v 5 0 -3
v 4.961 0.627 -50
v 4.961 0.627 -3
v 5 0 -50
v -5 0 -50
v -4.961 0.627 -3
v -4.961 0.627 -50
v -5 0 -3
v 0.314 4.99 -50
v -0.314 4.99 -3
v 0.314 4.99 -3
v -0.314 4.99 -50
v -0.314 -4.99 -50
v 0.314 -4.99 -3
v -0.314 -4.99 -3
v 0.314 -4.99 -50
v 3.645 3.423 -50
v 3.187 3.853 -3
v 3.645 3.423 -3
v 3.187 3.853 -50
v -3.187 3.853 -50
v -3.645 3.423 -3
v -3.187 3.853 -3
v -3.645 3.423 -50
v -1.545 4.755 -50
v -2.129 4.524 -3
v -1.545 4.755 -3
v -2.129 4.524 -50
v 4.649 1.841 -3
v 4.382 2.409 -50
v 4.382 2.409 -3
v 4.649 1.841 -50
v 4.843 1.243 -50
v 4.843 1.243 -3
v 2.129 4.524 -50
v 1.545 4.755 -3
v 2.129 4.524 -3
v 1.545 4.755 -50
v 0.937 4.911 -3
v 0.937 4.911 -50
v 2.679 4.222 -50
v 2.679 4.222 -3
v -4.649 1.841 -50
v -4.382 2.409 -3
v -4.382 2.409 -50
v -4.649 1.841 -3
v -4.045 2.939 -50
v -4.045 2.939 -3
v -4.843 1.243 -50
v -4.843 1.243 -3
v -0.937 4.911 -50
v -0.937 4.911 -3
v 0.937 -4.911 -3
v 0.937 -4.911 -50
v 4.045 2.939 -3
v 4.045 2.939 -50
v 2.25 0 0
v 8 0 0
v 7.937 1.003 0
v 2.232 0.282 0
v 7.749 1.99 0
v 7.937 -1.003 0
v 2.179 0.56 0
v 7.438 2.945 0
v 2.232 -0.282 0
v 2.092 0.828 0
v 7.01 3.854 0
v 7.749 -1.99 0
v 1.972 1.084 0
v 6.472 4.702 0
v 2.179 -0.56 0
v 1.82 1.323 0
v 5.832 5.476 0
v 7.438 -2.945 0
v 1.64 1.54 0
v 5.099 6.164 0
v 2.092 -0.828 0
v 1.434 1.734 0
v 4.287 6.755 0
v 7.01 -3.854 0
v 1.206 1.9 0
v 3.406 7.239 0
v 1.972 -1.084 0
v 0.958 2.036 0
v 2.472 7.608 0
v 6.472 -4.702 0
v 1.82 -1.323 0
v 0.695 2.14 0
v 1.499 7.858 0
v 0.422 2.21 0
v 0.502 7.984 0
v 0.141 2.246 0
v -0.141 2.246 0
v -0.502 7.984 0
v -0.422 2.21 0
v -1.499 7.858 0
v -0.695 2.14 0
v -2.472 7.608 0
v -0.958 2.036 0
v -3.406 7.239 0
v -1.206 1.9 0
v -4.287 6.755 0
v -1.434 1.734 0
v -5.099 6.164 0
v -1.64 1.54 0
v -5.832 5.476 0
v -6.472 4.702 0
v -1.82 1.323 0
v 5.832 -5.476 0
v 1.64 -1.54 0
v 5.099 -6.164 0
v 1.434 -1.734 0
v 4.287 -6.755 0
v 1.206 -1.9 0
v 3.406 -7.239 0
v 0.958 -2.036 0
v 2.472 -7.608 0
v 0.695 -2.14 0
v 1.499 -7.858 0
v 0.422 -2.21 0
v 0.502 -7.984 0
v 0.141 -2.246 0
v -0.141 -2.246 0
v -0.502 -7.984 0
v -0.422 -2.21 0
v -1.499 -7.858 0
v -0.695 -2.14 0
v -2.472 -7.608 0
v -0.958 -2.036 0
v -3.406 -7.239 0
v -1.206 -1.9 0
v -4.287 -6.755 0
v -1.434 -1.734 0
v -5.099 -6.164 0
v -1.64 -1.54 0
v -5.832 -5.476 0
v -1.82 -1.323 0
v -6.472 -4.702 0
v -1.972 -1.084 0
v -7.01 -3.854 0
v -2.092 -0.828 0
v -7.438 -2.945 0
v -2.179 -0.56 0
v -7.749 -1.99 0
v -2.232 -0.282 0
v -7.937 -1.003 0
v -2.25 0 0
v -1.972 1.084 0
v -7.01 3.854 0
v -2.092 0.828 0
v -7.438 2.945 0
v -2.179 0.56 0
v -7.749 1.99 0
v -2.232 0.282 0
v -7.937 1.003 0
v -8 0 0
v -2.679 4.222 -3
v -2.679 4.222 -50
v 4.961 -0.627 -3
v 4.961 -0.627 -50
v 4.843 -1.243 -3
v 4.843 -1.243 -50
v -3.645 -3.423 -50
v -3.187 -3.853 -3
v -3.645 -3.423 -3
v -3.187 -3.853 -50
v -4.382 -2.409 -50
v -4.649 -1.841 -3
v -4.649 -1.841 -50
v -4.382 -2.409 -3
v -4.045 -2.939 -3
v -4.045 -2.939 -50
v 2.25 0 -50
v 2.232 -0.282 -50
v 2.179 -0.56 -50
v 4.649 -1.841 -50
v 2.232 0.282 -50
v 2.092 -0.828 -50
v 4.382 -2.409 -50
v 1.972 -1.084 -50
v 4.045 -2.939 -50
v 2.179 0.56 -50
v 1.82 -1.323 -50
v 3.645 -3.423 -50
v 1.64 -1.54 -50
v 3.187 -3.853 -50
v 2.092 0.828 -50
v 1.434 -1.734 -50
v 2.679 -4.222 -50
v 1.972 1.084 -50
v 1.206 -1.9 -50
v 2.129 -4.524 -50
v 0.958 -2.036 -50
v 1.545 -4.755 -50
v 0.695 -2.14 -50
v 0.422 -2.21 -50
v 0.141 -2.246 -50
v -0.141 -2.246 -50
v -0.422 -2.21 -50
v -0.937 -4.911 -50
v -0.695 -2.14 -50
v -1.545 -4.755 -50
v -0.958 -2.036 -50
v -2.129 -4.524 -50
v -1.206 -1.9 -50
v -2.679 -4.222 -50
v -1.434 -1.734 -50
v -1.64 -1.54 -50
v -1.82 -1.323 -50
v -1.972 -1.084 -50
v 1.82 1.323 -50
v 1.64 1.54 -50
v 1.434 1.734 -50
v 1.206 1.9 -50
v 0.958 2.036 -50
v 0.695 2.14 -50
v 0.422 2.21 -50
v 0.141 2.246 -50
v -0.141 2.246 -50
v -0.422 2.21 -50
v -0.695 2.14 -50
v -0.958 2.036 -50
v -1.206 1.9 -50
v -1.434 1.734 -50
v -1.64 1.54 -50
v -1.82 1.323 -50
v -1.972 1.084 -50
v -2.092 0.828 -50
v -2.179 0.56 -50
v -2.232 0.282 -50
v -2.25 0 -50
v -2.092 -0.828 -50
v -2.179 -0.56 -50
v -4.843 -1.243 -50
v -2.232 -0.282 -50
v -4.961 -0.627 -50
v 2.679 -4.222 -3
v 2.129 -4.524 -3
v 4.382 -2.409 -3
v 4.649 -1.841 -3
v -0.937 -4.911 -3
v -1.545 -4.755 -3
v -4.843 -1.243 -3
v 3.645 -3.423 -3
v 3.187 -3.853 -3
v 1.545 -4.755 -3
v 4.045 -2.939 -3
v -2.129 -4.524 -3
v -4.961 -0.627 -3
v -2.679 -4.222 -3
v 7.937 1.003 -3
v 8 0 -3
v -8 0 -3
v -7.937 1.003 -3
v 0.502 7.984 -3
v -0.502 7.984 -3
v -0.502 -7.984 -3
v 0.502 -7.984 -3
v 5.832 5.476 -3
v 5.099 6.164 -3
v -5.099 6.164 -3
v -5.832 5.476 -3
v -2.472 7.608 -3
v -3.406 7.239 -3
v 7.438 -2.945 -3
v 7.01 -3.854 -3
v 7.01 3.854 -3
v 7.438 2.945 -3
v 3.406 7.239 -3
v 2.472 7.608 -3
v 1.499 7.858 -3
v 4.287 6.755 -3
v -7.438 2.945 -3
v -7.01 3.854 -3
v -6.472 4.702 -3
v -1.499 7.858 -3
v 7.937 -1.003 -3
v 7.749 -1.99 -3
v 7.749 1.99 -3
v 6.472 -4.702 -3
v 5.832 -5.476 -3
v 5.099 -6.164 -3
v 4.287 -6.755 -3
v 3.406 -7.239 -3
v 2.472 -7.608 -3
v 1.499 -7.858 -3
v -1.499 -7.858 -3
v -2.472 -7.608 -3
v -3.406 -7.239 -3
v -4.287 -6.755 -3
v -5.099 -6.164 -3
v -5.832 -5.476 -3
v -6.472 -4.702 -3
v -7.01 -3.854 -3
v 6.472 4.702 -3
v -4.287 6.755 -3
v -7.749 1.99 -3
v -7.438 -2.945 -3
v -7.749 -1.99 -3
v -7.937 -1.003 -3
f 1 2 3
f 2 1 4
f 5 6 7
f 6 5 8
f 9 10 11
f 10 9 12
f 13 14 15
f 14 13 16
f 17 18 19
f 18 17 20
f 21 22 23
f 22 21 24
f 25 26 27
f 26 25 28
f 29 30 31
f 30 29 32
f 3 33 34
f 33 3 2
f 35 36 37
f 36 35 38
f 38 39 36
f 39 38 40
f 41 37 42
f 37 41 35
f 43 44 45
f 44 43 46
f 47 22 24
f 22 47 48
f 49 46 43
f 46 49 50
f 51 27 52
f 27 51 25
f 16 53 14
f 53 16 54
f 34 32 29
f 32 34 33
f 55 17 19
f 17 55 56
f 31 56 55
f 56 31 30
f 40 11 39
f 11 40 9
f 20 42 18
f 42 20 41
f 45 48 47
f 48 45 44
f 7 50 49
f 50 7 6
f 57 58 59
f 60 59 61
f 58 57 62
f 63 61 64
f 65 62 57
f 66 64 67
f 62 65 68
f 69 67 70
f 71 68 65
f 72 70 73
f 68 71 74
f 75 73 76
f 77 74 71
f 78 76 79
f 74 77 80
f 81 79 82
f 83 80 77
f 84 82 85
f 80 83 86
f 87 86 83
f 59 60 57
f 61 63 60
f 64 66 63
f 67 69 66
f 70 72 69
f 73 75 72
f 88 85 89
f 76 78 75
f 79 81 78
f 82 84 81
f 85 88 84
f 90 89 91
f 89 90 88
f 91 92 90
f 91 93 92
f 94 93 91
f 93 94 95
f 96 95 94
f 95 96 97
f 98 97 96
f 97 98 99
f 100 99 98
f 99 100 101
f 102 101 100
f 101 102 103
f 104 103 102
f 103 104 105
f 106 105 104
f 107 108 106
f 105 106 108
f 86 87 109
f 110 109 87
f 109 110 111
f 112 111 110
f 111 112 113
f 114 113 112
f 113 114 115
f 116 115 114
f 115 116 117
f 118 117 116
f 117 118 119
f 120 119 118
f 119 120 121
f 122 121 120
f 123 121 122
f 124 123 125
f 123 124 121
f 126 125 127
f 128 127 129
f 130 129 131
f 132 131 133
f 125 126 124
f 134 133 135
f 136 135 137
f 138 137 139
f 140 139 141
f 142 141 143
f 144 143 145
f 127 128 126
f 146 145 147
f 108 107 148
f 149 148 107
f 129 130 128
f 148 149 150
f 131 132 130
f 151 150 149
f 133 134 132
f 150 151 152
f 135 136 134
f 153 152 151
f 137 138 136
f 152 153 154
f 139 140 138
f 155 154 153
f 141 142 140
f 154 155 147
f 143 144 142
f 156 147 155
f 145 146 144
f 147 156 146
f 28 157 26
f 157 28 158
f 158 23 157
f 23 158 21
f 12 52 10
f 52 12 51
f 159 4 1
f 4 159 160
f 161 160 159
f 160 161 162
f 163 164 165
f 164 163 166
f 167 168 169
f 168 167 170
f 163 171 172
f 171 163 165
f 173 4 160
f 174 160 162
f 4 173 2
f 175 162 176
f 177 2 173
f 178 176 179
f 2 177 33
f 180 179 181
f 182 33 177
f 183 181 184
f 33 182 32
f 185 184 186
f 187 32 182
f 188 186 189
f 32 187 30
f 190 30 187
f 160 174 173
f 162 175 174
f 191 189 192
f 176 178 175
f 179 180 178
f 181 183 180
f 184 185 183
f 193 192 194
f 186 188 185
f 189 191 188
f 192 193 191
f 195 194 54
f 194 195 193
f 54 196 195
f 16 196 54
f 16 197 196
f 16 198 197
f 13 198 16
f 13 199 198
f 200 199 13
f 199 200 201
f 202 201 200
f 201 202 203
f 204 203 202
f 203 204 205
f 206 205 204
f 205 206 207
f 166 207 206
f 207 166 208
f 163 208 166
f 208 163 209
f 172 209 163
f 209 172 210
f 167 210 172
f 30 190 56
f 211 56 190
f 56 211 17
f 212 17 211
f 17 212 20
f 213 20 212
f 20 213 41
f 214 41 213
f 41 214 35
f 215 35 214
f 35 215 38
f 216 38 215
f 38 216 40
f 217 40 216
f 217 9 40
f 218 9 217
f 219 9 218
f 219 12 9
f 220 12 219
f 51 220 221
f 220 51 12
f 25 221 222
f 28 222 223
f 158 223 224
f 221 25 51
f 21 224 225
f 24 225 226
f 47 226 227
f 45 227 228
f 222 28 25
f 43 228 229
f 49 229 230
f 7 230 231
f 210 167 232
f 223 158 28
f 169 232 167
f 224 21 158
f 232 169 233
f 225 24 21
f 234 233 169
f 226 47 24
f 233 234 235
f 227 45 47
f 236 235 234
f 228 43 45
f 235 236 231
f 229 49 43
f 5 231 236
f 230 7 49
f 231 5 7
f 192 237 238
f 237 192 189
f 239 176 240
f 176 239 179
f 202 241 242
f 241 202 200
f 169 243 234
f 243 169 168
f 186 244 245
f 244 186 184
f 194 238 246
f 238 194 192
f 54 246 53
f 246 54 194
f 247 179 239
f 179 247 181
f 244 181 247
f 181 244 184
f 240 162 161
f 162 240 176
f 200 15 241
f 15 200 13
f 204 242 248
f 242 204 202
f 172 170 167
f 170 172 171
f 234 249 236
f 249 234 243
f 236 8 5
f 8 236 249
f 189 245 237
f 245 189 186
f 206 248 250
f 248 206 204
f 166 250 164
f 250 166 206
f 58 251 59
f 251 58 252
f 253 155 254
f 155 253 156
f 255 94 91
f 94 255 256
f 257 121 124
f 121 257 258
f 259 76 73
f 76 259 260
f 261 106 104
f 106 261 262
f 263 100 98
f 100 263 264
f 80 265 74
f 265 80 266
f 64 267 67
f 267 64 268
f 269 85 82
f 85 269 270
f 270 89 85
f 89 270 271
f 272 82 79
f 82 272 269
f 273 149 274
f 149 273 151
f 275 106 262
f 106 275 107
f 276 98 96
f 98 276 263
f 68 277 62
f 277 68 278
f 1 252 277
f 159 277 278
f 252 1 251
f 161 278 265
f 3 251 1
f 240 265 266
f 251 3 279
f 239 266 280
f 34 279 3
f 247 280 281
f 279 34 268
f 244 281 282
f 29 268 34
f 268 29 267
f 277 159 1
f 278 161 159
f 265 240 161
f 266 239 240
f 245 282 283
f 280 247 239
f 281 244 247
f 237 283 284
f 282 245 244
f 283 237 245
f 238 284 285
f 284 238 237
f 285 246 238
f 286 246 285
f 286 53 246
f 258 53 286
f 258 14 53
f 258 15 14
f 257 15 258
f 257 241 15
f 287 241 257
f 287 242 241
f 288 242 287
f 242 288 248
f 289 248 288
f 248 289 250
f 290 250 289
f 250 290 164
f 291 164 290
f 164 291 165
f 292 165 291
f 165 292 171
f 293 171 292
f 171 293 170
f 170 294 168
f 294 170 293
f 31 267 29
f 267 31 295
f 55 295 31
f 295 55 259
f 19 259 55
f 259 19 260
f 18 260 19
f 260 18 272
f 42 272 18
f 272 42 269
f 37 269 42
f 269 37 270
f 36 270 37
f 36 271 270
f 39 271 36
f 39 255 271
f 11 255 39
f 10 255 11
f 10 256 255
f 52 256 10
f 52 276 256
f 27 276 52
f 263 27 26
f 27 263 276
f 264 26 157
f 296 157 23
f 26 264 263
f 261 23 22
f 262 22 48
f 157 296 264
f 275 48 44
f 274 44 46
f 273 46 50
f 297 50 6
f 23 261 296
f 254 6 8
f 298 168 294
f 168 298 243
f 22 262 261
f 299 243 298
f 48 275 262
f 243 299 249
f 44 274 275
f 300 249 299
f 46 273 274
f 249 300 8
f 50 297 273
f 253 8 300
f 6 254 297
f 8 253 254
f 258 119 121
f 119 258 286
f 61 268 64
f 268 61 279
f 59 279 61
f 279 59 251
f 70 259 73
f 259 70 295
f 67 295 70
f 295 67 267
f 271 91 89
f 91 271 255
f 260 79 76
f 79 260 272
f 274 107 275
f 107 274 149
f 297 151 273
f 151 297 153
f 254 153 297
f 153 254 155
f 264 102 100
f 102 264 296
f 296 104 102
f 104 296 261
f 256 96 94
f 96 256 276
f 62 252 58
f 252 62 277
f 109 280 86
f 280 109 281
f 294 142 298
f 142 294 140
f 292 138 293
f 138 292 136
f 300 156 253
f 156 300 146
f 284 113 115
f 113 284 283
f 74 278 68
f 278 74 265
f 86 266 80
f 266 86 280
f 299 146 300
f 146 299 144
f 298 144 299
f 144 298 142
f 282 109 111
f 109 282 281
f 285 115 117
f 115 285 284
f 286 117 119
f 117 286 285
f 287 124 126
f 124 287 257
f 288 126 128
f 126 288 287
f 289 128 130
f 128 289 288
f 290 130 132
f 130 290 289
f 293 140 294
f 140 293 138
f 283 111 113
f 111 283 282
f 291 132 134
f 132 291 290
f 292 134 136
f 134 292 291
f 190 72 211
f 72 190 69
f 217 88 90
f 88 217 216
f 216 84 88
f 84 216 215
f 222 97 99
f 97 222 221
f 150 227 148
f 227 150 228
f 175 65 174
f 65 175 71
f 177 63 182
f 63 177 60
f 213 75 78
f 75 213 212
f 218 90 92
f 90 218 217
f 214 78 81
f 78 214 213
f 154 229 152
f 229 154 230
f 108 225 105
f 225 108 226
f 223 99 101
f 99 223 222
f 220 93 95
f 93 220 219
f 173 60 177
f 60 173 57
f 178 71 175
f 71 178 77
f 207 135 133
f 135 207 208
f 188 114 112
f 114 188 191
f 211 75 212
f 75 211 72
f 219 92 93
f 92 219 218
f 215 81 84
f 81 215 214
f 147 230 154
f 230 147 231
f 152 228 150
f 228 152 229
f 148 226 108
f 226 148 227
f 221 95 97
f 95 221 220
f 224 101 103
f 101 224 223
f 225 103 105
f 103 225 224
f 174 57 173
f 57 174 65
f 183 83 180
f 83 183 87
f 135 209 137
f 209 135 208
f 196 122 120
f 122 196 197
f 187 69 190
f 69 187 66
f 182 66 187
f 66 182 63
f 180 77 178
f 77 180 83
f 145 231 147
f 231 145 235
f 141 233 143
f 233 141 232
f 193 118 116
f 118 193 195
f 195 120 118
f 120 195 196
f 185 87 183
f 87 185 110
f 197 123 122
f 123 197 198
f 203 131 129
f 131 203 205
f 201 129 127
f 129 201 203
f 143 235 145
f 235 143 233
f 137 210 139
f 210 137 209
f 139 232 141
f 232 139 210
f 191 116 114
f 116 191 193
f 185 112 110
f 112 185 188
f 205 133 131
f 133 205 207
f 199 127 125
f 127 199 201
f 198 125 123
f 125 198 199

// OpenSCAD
$fn = 50;


difference() {
	union() {
		translate(v = [0, 0, -50.0000000000]) {
			cylinder(h = 50, r = 5.0000000000);
		}
		translate(v = [0, 0, -3.0000000000]) {
			cylinder(h = 3, r = 8.0000000000);
		}
	}
	union() {
		#translate(v = [0, 0, -50]) {
			cylinder(h = 50, r = 2.2500000000);
		}
	}
}
